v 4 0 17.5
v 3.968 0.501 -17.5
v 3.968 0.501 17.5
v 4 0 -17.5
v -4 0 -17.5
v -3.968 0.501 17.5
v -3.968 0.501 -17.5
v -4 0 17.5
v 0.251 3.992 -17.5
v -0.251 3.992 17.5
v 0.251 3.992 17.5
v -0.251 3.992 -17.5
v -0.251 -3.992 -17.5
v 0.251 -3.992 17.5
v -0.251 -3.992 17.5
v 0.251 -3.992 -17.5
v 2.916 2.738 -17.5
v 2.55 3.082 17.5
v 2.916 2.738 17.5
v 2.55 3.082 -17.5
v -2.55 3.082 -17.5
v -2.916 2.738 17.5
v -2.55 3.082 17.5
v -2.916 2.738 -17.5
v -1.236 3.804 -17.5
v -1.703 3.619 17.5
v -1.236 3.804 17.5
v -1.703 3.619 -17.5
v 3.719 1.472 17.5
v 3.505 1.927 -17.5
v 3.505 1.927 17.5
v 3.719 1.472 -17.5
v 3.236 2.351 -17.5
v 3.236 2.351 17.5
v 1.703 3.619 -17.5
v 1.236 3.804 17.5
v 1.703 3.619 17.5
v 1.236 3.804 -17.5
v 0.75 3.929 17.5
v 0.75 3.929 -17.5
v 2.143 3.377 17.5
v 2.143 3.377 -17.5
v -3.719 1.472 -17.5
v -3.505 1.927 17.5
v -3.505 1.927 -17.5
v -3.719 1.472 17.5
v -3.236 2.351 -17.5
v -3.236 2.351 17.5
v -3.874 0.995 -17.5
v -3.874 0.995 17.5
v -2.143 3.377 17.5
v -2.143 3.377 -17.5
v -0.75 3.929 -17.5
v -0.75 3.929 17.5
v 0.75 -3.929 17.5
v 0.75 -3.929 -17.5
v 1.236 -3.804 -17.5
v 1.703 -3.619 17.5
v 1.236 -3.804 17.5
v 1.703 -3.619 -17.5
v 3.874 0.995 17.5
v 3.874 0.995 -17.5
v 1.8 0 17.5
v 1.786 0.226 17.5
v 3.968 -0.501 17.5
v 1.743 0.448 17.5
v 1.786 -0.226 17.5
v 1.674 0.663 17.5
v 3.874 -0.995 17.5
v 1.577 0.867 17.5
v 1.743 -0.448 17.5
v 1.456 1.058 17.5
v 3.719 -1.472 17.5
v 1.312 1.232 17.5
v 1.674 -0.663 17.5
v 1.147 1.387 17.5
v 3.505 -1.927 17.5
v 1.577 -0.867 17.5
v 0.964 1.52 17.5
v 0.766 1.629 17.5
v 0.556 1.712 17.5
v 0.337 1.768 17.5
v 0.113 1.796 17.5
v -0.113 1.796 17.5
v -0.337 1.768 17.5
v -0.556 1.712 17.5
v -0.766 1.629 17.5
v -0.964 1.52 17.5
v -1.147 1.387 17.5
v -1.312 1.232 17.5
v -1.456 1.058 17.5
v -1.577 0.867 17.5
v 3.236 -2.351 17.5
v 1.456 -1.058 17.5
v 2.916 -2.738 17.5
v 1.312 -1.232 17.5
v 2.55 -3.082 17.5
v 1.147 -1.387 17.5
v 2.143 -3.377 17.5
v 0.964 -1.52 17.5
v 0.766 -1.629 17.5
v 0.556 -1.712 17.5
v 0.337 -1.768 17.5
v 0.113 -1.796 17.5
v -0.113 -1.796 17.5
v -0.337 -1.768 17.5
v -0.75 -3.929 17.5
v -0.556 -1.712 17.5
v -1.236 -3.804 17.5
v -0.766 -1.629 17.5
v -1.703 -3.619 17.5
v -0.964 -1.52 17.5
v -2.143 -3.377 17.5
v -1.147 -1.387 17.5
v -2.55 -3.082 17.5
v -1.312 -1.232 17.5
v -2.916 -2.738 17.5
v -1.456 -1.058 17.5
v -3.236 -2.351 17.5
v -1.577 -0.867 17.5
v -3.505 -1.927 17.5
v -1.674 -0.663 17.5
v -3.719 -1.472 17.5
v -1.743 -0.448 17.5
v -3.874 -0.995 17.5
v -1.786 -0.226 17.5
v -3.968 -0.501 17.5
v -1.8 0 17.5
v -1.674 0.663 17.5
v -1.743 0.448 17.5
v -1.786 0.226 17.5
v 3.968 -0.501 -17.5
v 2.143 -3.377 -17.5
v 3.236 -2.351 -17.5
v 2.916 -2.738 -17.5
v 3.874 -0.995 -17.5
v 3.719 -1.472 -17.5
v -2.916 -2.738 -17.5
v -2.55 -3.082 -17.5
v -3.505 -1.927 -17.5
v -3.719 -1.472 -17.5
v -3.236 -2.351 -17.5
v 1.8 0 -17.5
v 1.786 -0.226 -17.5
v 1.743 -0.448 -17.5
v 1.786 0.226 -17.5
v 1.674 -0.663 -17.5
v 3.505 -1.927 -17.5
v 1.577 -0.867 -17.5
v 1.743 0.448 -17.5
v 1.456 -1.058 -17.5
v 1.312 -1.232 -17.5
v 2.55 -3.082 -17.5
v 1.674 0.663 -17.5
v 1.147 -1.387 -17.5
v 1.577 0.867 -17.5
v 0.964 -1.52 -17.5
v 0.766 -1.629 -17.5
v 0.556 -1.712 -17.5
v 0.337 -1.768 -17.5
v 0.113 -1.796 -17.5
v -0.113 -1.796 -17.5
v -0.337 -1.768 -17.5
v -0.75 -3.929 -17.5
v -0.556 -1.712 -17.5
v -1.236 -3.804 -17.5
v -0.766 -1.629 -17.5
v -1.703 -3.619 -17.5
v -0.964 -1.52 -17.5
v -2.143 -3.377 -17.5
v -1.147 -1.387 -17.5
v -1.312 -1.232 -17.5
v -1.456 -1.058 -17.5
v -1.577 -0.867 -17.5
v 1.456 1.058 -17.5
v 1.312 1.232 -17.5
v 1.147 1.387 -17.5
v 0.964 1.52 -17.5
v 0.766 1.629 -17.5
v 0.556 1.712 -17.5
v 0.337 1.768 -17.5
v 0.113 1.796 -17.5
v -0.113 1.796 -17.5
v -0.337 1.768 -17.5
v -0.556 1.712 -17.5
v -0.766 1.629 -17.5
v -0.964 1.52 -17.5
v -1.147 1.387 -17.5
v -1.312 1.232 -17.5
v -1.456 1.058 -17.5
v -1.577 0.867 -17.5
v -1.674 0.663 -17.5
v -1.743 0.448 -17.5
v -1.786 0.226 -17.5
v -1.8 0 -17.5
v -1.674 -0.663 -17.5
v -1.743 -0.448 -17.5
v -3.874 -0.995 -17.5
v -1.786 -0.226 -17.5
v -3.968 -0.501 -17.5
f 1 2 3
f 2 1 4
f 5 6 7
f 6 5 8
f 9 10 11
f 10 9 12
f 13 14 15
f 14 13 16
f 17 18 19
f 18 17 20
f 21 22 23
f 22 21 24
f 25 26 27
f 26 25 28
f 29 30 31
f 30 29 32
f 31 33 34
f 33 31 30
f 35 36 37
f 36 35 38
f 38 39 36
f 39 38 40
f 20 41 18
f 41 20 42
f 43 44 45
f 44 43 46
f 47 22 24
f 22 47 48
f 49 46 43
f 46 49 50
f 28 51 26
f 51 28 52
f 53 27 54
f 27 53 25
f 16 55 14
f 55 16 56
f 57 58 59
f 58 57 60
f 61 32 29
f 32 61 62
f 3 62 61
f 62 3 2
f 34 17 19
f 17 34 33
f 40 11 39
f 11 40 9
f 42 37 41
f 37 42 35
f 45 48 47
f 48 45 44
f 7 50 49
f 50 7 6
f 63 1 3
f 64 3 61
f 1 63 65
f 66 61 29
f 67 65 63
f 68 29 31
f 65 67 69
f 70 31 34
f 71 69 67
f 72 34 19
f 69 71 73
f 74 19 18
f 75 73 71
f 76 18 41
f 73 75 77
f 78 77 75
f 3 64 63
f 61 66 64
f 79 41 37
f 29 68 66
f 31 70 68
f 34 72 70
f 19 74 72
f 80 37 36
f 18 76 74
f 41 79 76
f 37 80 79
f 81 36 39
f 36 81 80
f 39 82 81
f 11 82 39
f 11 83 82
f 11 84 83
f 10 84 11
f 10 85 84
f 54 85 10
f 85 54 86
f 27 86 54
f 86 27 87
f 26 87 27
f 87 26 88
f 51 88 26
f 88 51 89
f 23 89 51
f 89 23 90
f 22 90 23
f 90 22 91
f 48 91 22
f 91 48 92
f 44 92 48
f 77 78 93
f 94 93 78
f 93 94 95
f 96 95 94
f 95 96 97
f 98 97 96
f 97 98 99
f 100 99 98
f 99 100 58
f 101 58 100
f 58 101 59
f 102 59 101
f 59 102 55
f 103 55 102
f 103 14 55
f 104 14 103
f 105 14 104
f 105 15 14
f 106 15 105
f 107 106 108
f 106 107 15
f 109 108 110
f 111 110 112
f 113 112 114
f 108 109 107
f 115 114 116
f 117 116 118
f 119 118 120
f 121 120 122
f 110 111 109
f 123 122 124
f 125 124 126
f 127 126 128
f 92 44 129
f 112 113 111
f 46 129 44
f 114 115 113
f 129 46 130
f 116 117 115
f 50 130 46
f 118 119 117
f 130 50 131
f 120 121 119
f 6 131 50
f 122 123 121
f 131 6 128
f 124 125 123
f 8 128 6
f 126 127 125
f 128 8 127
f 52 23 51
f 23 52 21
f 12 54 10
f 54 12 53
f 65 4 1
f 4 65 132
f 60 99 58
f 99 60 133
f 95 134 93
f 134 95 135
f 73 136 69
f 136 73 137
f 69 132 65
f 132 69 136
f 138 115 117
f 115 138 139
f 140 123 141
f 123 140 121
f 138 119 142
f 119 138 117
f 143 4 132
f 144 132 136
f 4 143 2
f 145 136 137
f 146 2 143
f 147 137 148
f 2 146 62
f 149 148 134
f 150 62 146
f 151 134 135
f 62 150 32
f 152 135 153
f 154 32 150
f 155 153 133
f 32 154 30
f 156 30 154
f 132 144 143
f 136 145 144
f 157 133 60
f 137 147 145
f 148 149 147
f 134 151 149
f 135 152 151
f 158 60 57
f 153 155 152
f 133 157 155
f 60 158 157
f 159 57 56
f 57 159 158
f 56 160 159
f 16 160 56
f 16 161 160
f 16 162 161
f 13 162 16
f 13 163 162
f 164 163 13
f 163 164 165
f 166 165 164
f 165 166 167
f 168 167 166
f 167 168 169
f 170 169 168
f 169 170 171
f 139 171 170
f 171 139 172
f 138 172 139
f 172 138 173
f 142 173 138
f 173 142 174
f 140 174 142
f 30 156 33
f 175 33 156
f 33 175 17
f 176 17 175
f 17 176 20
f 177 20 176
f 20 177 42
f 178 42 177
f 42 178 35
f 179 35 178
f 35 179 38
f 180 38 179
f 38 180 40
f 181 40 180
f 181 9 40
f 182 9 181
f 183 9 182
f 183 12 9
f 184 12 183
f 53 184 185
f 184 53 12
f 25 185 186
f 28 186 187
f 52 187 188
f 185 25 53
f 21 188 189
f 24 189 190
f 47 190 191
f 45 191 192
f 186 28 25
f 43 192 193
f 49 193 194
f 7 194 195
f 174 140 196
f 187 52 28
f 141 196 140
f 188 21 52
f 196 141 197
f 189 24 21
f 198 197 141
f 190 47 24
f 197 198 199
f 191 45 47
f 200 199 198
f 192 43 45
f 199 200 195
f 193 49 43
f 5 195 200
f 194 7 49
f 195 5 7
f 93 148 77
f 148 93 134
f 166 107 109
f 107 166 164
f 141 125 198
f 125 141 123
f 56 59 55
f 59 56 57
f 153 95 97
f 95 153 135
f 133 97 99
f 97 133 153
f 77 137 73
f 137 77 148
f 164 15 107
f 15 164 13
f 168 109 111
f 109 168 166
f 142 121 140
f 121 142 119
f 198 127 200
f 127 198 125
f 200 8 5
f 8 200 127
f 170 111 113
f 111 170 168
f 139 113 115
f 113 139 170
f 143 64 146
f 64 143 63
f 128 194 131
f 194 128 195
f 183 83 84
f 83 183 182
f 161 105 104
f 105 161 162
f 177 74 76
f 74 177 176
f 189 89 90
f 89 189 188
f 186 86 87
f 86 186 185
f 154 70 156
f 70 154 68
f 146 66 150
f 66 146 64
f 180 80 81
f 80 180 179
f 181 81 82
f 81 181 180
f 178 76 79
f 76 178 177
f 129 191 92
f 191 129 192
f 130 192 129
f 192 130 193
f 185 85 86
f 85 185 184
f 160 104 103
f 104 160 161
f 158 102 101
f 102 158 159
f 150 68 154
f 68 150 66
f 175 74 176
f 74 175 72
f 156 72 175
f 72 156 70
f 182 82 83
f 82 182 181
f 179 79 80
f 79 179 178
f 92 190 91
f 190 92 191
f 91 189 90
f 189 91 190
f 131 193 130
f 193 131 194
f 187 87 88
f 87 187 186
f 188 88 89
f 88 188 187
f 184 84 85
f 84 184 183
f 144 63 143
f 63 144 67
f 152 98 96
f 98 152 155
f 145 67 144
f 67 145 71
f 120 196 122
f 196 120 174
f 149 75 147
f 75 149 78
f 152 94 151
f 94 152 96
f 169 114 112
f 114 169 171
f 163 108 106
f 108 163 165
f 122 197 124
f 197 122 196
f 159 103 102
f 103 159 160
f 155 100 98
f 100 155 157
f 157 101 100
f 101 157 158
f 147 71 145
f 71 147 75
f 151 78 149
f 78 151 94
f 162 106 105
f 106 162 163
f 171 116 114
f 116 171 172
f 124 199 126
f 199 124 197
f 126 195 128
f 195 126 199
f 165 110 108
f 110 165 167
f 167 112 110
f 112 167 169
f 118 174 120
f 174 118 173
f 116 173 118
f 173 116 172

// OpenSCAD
$fn = 50;


difference() {
	union() {
		translate(v = [0, 0, -17.5000000000]) {
			cylinder(h = 35, r = 4.0000000000);
		}
	}
	union() {
		translate(v = [0, 0, -100.0000000000]) {
			cylinder(h = 200, r = 1.8000000000);
		}
	}
}
